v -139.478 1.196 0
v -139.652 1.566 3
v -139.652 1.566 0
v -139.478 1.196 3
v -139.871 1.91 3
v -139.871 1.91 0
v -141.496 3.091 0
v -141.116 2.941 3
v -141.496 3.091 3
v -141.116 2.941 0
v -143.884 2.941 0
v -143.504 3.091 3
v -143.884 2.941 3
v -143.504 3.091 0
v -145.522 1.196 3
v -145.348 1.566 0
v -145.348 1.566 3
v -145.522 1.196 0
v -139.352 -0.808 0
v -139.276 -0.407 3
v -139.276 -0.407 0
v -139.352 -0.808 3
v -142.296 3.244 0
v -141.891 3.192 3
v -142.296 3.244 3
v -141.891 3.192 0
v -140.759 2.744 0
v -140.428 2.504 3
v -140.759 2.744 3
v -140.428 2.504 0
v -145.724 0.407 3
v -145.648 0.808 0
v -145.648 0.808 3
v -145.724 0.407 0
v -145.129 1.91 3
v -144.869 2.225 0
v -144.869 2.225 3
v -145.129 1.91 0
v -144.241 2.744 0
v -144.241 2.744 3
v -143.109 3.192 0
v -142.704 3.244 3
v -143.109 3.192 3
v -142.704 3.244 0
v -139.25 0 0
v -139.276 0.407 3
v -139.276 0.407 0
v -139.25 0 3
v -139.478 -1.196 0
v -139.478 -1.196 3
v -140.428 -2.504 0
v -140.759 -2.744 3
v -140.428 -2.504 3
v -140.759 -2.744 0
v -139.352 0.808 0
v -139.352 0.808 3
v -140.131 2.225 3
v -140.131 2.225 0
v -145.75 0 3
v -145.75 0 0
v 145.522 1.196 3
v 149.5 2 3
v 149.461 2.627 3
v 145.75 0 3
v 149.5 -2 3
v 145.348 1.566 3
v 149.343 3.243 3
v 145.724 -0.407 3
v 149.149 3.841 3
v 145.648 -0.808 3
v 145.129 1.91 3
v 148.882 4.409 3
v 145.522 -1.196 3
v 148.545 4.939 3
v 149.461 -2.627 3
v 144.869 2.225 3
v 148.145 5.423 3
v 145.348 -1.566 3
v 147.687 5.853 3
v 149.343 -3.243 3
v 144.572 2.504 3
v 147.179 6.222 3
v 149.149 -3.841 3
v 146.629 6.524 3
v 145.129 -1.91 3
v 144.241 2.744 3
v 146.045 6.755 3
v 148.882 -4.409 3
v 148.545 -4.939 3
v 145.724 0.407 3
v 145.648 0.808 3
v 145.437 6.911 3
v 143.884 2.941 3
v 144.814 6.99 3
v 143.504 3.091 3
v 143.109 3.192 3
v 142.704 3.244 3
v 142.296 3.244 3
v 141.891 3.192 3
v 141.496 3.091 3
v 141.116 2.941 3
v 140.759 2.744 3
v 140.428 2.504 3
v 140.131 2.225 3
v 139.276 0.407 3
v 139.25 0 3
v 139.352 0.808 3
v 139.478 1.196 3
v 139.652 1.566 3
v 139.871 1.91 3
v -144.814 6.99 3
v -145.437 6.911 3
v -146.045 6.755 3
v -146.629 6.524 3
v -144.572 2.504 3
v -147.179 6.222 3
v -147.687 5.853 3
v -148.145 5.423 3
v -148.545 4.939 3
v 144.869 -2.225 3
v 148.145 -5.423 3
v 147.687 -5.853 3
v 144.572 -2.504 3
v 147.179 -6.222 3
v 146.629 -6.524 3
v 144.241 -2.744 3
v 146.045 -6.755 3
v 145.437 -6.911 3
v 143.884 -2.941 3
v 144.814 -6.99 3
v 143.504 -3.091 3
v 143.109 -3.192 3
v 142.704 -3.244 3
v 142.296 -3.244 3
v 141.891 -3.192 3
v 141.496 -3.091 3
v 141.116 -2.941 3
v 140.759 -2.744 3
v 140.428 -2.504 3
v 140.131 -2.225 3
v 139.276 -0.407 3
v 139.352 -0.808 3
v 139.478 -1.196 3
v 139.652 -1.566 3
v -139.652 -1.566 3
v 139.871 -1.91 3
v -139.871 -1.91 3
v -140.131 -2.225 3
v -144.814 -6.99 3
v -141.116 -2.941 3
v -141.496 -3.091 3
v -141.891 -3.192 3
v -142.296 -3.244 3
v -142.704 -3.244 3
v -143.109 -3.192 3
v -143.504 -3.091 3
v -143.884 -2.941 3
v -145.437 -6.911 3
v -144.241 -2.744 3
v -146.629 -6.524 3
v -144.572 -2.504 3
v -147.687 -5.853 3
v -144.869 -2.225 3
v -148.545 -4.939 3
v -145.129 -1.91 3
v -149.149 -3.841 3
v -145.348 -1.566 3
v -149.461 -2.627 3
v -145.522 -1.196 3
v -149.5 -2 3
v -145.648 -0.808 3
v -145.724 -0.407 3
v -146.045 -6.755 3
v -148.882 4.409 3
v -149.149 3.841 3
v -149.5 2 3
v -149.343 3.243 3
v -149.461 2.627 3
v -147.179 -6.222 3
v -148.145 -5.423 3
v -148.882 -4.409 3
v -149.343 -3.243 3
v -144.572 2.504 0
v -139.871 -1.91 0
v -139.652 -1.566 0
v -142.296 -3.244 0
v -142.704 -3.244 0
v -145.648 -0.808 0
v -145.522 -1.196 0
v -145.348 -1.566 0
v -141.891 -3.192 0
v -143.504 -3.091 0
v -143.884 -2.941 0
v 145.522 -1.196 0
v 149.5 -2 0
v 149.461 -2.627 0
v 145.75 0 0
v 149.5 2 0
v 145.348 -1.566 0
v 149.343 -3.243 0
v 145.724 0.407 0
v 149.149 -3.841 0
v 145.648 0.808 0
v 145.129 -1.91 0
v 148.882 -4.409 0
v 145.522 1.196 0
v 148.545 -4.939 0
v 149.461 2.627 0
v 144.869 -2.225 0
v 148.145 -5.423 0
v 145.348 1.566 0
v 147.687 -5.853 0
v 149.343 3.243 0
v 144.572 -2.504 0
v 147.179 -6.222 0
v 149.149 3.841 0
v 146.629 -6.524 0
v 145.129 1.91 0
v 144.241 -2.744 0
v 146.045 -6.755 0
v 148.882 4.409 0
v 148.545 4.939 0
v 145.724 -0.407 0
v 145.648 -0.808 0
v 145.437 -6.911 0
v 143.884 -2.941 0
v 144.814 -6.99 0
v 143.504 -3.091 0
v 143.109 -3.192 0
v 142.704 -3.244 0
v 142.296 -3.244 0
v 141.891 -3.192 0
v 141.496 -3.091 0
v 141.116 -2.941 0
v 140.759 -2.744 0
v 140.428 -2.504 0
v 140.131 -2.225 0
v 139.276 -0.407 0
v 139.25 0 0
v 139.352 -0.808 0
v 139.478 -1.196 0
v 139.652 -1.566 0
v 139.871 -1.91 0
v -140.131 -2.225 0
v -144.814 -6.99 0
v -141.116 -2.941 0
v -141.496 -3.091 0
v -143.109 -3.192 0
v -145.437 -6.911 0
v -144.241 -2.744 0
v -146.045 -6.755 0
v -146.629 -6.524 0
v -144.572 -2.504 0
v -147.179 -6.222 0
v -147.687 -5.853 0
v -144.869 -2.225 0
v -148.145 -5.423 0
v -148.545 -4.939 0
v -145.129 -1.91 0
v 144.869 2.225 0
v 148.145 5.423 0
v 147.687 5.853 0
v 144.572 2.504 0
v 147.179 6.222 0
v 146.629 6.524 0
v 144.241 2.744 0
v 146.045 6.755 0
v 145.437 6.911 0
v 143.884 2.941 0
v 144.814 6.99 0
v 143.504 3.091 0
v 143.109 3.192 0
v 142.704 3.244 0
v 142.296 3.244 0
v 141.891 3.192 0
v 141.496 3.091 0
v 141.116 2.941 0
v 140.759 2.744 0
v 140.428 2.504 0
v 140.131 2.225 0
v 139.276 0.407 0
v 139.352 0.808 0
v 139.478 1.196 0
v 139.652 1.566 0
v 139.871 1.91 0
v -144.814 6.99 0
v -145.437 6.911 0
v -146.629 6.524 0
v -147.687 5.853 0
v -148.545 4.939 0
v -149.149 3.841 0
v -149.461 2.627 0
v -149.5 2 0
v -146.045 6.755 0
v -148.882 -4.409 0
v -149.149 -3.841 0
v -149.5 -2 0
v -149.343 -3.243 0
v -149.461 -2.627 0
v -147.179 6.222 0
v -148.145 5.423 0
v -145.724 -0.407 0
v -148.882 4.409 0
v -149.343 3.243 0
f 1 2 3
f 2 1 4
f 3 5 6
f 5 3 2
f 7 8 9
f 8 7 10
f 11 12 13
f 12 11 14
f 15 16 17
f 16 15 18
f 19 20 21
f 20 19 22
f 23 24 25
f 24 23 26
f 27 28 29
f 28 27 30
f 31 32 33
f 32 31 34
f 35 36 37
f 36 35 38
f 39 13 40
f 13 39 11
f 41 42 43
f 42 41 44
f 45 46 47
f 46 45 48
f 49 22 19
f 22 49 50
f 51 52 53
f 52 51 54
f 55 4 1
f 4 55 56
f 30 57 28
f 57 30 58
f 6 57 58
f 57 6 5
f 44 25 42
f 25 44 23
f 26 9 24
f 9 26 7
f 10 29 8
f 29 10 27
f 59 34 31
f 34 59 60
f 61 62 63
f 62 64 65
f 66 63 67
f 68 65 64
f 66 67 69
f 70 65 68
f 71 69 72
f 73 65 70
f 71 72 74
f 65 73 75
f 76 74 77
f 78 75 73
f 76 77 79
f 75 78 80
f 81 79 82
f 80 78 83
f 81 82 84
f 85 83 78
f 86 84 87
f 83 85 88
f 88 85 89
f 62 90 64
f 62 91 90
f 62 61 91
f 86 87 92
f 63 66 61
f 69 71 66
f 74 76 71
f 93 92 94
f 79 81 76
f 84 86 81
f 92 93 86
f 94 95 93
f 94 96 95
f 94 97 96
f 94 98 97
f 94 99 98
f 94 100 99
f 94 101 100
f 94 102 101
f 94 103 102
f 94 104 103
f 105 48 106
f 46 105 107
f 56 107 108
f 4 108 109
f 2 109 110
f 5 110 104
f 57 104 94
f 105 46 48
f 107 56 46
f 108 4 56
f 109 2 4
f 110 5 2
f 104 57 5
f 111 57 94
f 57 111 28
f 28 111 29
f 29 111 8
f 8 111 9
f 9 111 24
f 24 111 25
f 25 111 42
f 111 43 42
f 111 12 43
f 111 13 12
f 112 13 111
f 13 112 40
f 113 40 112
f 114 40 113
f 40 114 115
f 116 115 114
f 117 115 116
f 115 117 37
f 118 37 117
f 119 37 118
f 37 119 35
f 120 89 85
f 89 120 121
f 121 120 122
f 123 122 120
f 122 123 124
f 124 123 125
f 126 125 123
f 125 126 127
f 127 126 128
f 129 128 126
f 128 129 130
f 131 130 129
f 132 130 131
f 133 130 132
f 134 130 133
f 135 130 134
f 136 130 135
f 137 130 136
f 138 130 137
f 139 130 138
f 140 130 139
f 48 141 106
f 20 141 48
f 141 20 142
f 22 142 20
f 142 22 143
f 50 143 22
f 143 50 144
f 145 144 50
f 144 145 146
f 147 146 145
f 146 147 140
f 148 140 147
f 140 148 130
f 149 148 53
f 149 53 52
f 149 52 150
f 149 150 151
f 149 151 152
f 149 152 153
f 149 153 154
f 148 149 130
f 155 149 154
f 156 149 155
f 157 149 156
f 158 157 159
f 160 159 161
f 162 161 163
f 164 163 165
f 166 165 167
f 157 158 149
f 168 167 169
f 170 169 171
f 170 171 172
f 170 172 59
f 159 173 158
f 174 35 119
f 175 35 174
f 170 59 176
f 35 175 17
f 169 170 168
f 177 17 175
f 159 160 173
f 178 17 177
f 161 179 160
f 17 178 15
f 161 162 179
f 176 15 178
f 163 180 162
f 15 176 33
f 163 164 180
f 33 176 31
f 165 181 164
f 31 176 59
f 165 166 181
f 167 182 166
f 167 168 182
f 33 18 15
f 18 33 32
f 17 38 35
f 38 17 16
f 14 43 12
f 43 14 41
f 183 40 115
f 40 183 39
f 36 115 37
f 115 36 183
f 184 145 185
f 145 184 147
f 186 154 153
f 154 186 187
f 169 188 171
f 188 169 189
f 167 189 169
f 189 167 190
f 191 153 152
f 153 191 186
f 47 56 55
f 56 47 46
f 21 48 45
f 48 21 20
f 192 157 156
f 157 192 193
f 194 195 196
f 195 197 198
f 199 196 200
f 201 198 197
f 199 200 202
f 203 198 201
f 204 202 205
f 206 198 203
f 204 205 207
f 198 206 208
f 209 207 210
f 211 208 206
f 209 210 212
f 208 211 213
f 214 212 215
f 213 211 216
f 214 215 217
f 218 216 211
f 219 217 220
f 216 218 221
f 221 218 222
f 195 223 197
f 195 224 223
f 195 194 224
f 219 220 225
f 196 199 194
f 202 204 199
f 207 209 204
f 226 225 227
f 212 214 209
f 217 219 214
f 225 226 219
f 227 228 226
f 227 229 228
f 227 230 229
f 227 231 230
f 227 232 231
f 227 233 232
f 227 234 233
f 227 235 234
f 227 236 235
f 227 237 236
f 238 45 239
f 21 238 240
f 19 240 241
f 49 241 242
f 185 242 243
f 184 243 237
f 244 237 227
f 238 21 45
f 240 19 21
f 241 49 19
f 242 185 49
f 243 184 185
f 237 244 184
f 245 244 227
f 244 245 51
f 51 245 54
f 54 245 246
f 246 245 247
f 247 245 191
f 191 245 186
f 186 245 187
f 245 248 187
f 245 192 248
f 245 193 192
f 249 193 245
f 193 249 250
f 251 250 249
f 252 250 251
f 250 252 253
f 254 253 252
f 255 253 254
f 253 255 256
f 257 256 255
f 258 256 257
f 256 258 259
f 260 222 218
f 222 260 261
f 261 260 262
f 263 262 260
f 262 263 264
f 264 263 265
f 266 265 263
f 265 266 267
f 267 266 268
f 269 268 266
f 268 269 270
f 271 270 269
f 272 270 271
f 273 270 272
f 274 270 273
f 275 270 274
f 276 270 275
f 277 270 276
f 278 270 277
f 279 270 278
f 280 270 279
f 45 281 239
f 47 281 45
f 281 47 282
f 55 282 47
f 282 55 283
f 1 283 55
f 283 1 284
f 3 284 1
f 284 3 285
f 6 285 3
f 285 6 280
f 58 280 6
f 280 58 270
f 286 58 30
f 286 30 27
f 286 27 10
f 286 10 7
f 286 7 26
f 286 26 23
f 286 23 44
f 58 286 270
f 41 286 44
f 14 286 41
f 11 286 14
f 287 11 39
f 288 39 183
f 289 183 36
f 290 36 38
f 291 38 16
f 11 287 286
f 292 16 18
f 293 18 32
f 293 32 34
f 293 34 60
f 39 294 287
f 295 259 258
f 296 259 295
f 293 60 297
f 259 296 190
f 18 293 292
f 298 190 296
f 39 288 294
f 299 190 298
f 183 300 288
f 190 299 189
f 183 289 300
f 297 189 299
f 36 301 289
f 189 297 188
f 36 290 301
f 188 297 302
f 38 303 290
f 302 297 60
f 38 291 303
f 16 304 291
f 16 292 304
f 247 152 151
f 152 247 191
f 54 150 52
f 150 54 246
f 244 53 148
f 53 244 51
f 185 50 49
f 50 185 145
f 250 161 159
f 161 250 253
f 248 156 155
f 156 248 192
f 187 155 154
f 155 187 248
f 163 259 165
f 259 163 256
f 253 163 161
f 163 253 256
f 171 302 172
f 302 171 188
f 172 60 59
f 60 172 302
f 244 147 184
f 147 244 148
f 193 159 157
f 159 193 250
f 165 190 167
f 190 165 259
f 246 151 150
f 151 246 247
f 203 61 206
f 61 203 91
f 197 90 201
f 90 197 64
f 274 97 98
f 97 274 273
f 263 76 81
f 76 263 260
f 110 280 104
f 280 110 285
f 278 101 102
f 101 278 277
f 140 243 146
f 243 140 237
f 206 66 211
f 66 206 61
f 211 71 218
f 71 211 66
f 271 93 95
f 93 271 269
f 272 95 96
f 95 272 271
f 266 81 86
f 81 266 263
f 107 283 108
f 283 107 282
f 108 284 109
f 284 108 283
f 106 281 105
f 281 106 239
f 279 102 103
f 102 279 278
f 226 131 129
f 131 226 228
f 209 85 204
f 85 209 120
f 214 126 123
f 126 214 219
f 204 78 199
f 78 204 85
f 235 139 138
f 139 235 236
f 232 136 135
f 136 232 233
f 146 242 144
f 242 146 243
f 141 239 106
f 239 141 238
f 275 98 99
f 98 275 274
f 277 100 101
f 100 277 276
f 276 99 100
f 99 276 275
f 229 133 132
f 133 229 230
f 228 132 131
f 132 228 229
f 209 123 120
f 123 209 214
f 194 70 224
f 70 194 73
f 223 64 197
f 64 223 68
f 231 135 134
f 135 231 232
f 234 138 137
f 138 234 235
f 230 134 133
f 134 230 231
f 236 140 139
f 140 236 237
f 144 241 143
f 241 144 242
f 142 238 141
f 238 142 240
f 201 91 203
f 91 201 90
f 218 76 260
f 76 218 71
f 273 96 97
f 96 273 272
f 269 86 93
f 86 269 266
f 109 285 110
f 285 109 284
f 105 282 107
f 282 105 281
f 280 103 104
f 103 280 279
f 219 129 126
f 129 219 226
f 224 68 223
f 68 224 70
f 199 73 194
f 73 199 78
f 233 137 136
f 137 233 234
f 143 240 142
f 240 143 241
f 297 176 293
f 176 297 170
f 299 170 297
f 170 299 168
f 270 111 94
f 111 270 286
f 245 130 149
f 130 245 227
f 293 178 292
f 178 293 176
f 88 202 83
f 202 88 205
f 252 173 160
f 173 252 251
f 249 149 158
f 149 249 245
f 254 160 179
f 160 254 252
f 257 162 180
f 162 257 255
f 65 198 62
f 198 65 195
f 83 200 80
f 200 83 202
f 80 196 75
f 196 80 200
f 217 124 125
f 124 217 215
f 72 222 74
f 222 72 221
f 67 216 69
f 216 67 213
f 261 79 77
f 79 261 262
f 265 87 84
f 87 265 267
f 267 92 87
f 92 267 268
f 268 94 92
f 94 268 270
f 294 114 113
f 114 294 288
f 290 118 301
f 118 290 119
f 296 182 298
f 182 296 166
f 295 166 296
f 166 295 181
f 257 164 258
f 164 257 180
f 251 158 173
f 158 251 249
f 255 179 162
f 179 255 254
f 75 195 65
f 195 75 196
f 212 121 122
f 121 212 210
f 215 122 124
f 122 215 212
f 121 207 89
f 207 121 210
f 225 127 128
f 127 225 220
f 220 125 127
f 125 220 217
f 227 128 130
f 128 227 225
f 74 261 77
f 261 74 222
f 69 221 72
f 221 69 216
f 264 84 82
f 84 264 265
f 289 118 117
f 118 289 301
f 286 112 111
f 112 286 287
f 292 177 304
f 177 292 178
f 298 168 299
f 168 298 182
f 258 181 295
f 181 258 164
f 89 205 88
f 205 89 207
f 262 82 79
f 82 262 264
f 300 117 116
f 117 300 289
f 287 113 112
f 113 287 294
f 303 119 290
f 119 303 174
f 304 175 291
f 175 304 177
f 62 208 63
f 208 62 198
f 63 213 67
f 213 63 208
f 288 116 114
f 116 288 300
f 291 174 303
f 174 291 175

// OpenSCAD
$fn = 50;


difference() {
	union() {
		hull() {
			translate(v = [-144.5000000000, 2.0000000000, 0]) {
				cylinder(h = 3, r = 5);
			}
			translate(v = [144.5000000000, 2.0000000000, 0]) {
				cylinder(h = 3, r = 5);
			}
			translate(v = [-144.5000000000, -2.0000000000, 0]) {
				cylinder(h = 3, r = 5);
			}
			translate(v = [144.5000000000, -2.0000000000, 0]) {
				cylinder(h = 3, r = 5);
			}
		}
	}
	union() {
		translate(v = [-142.5000000000, 0.0000000000, -100.0000000000]) {
			cylinder(h = 200, r = 3.2500000000);
		}
		translate(v = [-142.5000000000, 0.0000000000, -100.0000000000]) {
			cylinder(h = 200, r = 3.2500000000);
		}
		translate(v = [142.5000000000, 0.0000000000, -100.0000000000]) {
			cylinder(h = 200, r = 3.2500000000);
		}
		translate(v = [142.5000000000, 0.0000000000, -100.0000000000]) {
			cylinder(h = 200, r = 3.2500000000);
		}
	}
}
